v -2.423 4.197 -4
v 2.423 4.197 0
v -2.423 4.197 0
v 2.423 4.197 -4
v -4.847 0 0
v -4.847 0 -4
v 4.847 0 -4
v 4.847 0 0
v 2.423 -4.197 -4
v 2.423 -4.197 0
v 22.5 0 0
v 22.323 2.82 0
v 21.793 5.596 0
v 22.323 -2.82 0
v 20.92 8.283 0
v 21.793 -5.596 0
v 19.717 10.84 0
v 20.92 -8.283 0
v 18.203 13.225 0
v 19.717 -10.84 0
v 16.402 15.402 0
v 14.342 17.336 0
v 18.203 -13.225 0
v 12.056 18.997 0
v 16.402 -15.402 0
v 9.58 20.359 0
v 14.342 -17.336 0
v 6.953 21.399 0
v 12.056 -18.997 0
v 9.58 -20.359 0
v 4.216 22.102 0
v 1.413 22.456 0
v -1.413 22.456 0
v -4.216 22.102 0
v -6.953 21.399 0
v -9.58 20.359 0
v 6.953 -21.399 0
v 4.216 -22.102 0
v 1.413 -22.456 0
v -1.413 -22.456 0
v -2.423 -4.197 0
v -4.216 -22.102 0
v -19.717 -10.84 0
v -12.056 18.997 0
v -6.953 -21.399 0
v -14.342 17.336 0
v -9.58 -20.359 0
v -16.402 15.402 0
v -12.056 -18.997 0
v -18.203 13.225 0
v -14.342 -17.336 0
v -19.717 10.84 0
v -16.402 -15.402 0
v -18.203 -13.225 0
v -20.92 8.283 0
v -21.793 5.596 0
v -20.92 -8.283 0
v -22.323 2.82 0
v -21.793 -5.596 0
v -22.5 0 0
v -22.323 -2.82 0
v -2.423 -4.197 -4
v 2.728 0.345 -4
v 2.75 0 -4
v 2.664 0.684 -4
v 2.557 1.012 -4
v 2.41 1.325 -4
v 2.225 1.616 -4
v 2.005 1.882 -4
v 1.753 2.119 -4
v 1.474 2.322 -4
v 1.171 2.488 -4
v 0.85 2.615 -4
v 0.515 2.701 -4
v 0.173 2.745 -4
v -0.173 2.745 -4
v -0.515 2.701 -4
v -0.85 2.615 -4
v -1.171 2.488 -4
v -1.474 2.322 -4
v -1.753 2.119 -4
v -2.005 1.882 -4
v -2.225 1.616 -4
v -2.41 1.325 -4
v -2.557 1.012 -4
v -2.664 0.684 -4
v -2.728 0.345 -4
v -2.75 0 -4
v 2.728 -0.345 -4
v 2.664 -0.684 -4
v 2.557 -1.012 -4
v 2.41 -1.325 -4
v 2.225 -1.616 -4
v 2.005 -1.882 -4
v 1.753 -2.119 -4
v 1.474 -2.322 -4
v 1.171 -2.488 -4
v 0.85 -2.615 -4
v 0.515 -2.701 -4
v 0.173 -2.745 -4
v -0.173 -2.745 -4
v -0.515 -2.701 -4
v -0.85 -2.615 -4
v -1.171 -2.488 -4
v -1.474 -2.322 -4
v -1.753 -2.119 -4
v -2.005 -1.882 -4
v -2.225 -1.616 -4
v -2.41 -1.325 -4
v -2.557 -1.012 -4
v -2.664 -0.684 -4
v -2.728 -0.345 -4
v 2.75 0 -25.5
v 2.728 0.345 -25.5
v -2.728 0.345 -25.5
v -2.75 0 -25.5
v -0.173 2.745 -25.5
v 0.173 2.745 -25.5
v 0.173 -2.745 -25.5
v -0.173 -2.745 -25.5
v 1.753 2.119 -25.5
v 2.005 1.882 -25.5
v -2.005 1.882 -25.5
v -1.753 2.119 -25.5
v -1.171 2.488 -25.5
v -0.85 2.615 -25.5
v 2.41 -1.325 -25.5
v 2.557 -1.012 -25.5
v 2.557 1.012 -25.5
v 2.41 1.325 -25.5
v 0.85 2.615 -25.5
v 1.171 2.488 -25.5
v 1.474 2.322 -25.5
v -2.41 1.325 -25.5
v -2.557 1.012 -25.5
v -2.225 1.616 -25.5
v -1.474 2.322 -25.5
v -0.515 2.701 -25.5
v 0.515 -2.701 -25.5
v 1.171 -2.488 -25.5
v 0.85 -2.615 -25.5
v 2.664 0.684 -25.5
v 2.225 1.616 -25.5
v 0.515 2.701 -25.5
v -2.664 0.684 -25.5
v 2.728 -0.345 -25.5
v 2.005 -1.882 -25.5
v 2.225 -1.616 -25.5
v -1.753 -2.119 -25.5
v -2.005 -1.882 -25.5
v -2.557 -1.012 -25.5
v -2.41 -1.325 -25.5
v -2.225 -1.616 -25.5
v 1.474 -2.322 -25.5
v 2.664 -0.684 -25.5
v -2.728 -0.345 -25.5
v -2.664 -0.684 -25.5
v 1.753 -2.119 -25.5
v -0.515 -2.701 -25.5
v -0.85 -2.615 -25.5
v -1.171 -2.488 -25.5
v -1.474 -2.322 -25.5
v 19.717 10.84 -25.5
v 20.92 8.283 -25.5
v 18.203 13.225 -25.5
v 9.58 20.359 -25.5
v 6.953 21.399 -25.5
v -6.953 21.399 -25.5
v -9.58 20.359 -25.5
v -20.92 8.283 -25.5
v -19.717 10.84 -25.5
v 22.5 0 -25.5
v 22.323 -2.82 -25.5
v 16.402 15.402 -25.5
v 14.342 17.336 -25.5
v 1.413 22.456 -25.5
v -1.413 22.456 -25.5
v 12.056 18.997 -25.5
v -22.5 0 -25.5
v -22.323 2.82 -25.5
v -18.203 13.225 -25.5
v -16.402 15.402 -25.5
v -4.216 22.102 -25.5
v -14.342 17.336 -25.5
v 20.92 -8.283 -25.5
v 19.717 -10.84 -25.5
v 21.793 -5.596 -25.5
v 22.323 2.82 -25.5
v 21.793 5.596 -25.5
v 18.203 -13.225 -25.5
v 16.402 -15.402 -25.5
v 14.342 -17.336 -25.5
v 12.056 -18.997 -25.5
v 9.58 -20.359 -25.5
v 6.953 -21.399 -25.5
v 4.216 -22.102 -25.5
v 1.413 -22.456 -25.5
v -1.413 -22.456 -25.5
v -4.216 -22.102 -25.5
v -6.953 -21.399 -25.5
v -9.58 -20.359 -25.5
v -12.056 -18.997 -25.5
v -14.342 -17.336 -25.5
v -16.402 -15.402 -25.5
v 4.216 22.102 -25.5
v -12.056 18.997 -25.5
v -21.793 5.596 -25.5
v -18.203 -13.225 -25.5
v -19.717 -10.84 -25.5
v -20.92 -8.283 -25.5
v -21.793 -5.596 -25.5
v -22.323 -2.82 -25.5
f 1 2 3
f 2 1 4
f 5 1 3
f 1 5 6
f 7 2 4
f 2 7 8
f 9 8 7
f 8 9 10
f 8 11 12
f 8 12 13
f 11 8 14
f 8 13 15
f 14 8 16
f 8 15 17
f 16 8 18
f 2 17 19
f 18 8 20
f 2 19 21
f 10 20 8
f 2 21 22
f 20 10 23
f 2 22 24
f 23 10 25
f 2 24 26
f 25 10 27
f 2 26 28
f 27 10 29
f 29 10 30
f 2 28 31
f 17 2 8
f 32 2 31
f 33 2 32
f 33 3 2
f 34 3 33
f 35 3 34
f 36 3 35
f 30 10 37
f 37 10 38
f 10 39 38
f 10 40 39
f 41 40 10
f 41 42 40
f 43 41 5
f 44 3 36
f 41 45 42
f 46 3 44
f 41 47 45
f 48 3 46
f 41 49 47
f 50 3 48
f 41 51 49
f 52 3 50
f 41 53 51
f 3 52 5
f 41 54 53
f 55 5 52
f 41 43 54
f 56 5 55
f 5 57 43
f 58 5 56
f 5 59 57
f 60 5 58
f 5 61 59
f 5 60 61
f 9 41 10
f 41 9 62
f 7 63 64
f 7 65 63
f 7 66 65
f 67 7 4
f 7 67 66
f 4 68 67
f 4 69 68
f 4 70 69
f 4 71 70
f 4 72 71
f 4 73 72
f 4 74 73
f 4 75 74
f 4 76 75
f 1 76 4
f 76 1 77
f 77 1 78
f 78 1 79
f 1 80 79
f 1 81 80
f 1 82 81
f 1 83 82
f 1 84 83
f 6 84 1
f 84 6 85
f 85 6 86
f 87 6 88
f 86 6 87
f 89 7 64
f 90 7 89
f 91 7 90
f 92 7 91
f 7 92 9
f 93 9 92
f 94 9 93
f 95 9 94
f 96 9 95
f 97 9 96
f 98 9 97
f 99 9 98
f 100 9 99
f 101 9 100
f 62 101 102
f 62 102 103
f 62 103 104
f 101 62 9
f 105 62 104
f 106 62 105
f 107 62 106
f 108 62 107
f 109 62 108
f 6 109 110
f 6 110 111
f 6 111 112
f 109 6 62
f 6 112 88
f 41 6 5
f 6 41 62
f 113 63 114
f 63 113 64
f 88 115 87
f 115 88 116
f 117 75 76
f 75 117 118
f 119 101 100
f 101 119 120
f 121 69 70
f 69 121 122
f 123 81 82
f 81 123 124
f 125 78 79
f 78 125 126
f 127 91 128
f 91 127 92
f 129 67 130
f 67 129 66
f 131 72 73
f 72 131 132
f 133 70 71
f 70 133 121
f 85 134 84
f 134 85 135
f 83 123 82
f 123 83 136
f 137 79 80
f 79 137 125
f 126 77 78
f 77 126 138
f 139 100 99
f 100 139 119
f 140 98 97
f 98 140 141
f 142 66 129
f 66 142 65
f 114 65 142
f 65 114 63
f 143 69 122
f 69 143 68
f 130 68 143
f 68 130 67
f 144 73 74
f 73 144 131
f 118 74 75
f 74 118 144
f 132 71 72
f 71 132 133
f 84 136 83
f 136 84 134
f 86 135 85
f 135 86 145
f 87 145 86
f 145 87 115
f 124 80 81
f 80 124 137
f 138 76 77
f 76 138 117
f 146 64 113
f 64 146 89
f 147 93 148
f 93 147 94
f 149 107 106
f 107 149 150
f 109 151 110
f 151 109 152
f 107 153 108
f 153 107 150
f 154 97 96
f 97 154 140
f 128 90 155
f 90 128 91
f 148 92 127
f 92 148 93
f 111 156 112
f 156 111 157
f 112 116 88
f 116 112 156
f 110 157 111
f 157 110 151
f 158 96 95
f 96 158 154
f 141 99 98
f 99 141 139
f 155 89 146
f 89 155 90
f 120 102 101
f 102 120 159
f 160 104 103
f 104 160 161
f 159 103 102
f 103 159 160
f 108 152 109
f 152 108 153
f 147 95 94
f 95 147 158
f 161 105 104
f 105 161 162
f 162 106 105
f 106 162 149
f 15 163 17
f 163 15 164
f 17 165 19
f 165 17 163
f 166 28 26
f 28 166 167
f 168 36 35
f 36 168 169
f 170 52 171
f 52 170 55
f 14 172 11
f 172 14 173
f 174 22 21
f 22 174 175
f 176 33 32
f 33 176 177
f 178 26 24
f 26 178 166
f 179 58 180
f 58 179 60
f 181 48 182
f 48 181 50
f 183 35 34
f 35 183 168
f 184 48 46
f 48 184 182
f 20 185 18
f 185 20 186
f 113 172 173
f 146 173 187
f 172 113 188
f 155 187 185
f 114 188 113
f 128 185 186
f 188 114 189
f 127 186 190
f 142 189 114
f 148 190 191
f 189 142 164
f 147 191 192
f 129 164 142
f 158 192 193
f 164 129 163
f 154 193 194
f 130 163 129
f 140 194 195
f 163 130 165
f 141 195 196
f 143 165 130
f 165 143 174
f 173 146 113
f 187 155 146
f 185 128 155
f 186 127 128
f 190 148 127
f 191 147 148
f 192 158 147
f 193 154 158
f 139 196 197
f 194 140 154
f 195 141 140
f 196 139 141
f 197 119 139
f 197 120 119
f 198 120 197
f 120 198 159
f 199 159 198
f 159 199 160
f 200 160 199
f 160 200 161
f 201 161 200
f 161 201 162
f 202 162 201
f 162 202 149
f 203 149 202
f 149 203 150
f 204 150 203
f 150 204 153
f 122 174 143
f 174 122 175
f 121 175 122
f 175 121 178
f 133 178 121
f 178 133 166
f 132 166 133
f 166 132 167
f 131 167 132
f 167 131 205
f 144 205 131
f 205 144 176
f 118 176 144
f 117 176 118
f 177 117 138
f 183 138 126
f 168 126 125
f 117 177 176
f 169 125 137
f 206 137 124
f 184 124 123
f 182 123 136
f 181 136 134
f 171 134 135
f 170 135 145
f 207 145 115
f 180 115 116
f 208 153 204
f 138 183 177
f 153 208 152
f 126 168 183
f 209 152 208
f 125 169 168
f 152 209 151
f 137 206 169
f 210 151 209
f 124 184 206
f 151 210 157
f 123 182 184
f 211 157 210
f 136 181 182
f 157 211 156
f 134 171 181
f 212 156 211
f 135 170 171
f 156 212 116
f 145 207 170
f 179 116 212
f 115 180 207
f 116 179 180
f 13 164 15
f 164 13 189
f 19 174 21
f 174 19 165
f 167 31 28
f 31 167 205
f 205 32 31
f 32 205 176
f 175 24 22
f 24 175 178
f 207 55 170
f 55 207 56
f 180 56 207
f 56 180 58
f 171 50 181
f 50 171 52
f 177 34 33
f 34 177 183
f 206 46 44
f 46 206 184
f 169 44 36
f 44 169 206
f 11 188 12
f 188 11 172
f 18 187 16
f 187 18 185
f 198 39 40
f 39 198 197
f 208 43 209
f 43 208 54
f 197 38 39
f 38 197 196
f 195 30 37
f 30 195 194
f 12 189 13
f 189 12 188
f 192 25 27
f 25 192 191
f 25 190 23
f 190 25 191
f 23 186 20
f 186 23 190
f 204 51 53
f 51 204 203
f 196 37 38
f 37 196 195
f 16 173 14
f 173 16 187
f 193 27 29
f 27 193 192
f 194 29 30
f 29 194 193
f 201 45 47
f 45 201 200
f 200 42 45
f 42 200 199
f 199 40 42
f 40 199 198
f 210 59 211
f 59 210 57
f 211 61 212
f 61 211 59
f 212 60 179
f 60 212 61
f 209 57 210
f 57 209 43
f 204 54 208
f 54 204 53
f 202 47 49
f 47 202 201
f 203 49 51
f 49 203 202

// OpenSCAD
$fn = 50;

difference() {
	union() {
		translate(v = [0, 0, -25.5]) {
			cylinder(h = 25.5, r = 22.5);
		}
	}
	union() {
		translate(v = [0, 0, 0]) {
			rotate(a = [0, 0, 0]) {
				difference() {
					union() {
						translate(v = [0, 0, -4]) {
							linear_extrude(height = 4) {
								polygon(points = [[4.8468, 0.0], [2.4234000000000004, 4.197451927062417], [-2.423399999999999, 4.197451927062417], [-4.8468, 5.935618106107392e-16], [-2.423400000000002, -4.197451927062416], [2.423399999999997, -4.197451927062419]]);
							}
						}
					}
					union();
				}
			}
		}
		#translate(v = [0, 0, -100.0]) {
			cylinder(h = 200, r = 2.75);
		}
	}
}
